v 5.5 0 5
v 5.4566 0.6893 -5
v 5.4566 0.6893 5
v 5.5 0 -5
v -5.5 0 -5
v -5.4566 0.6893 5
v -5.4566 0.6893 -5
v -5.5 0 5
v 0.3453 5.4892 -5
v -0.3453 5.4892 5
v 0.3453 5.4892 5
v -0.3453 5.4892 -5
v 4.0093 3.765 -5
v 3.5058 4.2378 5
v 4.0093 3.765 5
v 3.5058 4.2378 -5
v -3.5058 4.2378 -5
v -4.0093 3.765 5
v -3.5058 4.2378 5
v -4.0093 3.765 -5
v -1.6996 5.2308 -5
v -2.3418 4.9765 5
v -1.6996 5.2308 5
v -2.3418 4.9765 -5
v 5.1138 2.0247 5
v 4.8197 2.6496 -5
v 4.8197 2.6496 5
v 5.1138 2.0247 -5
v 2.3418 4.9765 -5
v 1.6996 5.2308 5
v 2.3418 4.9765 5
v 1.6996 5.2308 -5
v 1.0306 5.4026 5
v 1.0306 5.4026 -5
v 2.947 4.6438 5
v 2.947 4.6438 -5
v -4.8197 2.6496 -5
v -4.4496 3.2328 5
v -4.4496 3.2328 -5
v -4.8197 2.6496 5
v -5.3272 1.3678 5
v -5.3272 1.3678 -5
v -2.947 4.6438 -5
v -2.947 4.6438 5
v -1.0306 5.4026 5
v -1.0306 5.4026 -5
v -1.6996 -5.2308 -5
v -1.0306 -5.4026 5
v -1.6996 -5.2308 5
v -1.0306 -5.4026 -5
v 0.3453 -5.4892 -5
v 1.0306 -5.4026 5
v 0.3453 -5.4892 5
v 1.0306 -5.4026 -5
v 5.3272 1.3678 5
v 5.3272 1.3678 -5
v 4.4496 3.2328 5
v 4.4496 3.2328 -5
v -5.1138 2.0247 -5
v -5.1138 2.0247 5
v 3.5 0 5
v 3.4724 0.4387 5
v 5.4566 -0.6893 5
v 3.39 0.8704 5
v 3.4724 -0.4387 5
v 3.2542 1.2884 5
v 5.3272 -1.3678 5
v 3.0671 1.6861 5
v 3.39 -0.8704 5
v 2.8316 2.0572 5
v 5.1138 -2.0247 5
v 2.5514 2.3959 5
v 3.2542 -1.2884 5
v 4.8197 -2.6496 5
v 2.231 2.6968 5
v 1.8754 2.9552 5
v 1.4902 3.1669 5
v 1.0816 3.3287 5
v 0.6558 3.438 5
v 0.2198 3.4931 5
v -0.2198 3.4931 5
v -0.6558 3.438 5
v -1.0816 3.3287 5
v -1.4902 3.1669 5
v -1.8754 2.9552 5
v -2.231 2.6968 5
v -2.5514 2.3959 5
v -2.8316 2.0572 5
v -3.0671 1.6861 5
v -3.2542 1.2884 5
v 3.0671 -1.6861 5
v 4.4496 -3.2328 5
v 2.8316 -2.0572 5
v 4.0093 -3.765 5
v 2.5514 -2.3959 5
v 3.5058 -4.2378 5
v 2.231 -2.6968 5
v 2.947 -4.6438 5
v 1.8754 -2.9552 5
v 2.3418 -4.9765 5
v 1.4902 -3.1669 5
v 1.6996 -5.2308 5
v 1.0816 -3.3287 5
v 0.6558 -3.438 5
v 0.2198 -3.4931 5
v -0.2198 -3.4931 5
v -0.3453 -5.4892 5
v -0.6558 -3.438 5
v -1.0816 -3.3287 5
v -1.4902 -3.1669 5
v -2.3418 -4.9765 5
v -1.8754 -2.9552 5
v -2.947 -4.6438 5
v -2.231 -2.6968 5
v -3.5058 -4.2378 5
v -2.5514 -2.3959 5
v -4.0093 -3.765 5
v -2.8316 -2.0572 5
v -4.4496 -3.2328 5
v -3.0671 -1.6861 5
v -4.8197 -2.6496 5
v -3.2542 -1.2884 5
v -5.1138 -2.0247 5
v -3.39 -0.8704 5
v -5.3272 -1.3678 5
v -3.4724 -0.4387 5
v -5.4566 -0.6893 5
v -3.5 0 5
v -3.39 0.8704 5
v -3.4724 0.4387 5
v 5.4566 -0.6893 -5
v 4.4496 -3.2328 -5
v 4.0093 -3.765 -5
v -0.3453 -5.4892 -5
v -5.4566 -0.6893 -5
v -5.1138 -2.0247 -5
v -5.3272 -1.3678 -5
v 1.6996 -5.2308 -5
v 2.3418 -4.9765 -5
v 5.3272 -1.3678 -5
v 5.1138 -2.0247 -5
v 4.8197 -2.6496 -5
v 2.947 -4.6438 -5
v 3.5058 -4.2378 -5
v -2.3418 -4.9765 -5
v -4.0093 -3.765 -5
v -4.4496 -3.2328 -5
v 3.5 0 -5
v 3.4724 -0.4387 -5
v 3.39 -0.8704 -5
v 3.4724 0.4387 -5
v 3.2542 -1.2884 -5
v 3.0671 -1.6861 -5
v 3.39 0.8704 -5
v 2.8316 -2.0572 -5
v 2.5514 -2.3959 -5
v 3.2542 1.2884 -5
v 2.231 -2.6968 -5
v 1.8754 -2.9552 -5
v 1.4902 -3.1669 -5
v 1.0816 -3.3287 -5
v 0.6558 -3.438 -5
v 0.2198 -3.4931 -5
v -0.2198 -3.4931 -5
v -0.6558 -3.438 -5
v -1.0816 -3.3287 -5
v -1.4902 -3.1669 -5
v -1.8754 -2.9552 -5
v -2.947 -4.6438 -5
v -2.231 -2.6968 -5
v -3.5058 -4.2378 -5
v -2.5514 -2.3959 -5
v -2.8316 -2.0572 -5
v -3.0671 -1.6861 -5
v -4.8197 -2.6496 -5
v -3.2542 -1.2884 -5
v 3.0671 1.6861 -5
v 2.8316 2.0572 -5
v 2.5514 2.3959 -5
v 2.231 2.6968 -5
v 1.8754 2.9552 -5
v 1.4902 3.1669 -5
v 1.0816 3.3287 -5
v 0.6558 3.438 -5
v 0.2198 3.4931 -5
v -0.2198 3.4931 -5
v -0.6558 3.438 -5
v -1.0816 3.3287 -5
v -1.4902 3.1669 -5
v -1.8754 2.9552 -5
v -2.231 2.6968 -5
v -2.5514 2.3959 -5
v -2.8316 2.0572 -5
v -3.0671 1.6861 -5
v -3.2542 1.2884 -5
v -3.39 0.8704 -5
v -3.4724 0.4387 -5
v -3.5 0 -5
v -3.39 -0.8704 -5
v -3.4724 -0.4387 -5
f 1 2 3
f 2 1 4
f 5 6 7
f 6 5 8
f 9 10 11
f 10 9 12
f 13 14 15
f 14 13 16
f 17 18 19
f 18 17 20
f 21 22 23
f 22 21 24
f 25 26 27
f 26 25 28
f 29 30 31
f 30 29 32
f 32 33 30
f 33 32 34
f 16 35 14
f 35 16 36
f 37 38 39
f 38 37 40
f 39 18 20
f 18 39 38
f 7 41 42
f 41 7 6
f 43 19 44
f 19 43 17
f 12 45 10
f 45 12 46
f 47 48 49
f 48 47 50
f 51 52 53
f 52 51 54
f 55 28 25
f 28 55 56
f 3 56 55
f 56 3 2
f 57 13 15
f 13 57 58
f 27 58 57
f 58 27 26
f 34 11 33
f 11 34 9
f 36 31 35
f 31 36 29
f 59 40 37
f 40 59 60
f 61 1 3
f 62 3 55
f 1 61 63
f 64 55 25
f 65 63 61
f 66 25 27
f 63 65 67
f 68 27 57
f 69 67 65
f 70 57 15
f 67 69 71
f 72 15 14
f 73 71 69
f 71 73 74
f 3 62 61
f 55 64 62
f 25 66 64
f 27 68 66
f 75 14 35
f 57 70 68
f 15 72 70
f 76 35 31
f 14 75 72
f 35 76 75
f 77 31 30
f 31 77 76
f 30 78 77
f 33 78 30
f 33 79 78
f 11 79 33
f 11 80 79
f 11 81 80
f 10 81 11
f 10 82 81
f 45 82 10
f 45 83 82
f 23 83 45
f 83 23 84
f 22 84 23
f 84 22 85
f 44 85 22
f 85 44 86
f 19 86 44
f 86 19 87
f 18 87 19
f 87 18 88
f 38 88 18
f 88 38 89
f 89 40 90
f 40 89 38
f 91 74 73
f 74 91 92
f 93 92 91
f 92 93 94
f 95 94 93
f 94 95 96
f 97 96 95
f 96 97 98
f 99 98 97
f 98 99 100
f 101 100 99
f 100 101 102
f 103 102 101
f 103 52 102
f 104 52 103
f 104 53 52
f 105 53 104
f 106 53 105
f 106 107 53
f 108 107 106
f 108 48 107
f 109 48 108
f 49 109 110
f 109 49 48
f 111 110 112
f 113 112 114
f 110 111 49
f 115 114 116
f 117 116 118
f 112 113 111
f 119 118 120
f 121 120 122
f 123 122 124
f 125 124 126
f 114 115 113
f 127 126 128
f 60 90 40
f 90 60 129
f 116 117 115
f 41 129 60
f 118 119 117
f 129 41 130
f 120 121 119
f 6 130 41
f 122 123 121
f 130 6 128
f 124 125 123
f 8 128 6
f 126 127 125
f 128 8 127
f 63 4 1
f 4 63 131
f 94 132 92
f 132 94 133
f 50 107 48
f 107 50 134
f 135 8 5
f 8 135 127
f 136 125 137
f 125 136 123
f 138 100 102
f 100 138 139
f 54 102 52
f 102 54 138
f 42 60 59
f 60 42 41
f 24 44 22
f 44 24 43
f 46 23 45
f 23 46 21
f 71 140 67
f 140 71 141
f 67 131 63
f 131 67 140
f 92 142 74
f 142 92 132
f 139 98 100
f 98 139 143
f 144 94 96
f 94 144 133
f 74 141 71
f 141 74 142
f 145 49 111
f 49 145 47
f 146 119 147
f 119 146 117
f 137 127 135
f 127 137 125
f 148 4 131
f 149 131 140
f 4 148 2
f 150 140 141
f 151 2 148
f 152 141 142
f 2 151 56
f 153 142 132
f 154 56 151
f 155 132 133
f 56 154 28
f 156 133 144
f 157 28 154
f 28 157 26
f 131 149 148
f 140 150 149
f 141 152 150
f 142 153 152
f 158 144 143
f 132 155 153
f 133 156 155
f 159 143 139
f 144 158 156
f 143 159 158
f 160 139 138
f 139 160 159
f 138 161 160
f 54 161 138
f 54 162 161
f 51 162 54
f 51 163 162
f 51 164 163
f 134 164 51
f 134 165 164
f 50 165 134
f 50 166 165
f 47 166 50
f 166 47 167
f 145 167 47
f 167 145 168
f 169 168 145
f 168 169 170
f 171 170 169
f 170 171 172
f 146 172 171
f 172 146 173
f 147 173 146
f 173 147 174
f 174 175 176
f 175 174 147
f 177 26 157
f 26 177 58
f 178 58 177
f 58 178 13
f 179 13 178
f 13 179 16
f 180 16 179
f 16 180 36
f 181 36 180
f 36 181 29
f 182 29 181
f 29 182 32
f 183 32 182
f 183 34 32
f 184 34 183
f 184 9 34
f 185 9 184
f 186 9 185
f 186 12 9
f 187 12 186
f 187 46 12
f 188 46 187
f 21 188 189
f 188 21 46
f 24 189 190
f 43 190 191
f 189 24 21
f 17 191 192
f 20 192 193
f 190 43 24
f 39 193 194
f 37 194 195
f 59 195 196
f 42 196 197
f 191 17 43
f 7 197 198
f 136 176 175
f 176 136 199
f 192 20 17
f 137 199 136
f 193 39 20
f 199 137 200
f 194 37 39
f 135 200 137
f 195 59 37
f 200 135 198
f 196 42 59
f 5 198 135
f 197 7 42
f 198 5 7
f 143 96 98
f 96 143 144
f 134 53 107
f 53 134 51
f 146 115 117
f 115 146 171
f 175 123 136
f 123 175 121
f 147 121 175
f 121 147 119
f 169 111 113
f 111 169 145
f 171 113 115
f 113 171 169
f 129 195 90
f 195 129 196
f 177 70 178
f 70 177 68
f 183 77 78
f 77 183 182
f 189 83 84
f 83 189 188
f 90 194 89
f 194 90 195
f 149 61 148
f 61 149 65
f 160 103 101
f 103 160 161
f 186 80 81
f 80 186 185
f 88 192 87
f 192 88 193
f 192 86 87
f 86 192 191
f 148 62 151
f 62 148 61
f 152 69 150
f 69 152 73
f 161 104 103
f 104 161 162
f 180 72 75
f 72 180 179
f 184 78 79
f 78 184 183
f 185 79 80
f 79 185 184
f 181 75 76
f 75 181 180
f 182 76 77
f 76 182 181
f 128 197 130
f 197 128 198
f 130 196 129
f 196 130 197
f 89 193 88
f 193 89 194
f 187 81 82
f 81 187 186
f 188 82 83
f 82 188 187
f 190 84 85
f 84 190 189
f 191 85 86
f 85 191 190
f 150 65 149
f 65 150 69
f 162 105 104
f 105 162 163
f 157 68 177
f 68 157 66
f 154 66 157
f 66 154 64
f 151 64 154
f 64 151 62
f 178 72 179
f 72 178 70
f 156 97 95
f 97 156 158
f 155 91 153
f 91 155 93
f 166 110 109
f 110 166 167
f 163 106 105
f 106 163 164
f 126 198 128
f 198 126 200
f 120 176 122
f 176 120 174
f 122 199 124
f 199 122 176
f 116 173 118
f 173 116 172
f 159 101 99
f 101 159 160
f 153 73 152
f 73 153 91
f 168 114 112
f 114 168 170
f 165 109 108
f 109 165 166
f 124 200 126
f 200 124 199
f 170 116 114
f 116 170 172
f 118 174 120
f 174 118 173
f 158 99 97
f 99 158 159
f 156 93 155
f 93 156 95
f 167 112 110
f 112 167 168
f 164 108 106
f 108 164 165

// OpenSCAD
$fn = 50;


difference() {
	union() {
		translate(v = [0, 0, -5.0000000000]) {
			cylinder(h = 10, r = 5.5000000000);
		}
	}
	union() {
		translate(v = [0, 0, -100.0000000000]) {
			cylinder(h = 200, r = 3.5000000000);
		}
	}
}
